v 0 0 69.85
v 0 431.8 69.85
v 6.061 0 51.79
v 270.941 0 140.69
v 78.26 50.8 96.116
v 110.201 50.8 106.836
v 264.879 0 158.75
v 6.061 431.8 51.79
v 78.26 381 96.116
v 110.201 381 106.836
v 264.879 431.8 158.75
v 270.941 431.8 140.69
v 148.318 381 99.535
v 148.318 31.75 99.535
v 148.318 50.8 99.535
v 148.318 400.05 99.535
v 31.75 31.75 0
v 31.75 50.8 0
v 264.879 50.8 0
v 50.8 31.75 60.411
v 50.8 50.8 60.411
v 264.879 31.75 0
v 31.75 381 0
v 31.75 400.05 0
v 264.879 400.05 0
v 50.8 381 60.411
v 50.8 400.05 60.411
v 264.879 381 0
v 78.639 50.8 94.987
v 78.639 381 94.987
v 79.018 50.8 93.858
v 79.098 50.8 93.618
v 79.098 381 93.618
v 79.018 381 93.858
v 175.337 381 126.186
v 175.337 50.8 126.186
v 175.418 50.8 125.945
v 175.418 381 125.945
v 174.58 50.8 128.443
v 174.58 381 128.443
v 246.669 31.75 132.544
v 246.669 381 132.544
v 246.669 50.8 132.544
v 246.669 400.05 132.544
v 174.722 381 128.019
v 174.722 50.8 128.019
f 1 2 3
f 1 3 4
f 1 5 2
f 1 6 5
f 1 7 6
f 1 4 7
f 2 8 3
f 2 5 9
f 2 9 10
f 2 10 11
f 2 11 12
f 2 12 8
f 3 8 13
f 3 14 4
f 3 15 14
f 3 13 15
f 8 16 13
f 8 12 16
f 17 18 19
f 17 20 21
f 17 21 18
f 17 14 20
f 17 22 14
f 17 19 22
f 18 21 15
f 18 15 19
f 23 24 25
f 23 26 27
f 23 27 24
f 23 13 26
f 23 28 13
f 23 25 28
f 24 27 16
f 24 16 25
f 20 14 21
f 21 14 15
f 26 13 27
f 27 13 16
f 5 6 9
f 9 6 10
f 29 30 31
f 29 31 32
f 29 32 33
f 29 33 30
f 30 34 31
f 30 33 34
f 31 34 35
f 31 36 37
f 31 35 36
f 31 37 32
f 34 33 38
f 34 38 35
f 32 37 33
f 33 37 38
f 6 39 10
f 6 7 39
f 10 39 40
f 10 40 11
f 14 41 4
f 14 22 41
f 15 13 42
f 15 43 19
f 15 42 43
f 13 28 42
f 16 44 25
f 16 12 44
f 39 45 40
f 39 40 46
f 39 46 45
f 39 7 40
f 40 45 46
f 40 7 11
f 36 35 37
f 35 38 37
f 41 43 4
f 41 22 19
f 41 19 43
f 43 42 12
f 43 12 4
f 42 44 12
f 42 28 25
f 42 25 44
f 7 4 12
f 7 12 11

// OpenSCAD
// =============================================================
//  Desk footrest -- solid ramp on splayed sides
//
//  A brace, not a platform.  The chair and the desk both adjust, so height is
//  already solved; the job is to give the feet something to push forward
//  against, so the legs stop extending and shoving the hips toward the front
//  of the seat.  The slope does that -- about a third of the push comes back
//  horizontally, into the chair.
//
//  Solid top rather than slats: slats read as pallet, and a solid top can be
//  sized to come off ONE board with no glue-up, which matters because there is
//  no clamp in the shop that spans it.
//
//  Everything is in inches; scale(UNIT) at the bottom emits millimetres.
//
//      openscad footrest.scad
//      openscad -D 'mode="exploded"' footrest.scad
// =============================================================
UNIT = 25.4;

mode = "assembled";   // assembled | exploded | side | parts | none

// ---------------- stock
T = 0.75;

// ---------------- the ramp
// 20 degrees is about the ceiling before the ankle starts to complain, so this
// sits just under it.  D_TOP is chosen so the top comes out of a 1x12.
D_TOP   = 11.00;      // top board, front to back ALONG the ramp
W_TOP   = 17.00;      // top board, side to side
H_FRONT =  2.75;      // top SURFACE height at the near edge
H_BACK  =  6.25;      // at the far edge

// ---------------- sides
INSET = 1.25;         // how far each side is set in from the end of the top
FRONT_SET = 1.25;     // and set back from the front edge, so the top overhangs
SPLAY = 0.75;         // how much wider the sides are at the floor than up top

// ---------------- felt strip
// Where the feet actually land.  Three jobs at once: stops a smooth ramp being
// slippery in socks, is warmer underfoot than bare wood, and puts a line of
// colour into an object that is otherwise one flat brown plane.
FELT_W    = 13.00;
FELT_D    =  4.00;    // along the ramp
FELT_FROM =  3.25;    // from the front edge, along the ramp
FELT_REC  =  0.09375; // 3/32 recess, so the felt sits flush and not proud

// ---------------- derived
RISE  = H_BACK - H_FRONT;
ANG   = asin(RISE / D_TOP);      // ramp angle -- rise over the ramp LENGTH
D     = D_TOP * cos(ANG);        // horizontal footprint
UNDER = T / cos(ANG);            // top's thickness, measured vertically

EPS = 0.01;

WALNUT  = "#5b3a24";
WALNUT2 = "#66422c";
FELT    = "#2b3a55";

// =============================================================
//  parts
// =============================================================

// Put children in the ramp frame: origin at the top's front edge, x running up
// the ramp, z normal to it (0 = top surface, negative = into the board).
module in_ramp() {
    translate([0, 0, H_FRONT]) rotate([0, -ANG, 0]) children();
}

module felt_solid(extra = 0) {
    in_ramp()
        translate([FELT_FROM, (W_TOP - FELT_W)/2, -FELT_REC - extra])
            cube([FELT_D, FELT_W, FELT_REC + extra + EPS]);
}

module top_board() {
    difference() {
        in_ramp() translate([0, 0, -T]) cube([D_TOP, W_TOP, T]);
        felt_solid(EPS);
    }
}

module felt() {
    in_ramp()
        translate([FELT_FROM, (W_TOP - FELT_W)/2, -FELT_REC])
            cube([FELT_D, FELT_W, FELT_REC]);
}

// Side profile, in x (front to back) and z (up).  A splayed trapezoid: wider
// at the floor than where it meets the top, so the piece stands on a base
// visibly broader than its waist.  Straight lines only, no boolean -- nothing
// here can go non-manifold.
module side_profile() {
    z_front = H_FRONT - UNDER;
    z_back  = H_BACK  - UNDER;
    zf = z_front + FRONT_SET * (z_back - z_front) / D;   // ramp height at the setback
    polygon([[FRONT_SET, 0],
             [D, 0],
             [D - SPLAY,           z_back],
             [FRONT_SET + SPLAY,   zf]]);
}

// j = 0 near side, 1 far side
module side(j) {
    y = (j == 0) ? INSET : W_TOP - INSET - T;
    translate([0, y + T, 0])
        rotate([90, 0, 0])
            linear_extrude(T)
                side_profile();
}

// =============================================================
//  assembly
// =============================================================
module footrest(explode = 0) {
    translate([0, 0, explode * 2.4]) color(WALNUT) top_board();
    translate([0, 0, explode * 2.4]) color(FELT)   felt();
    for (j = [0, 1])
        translate([0, (j == 0 ? -explode : explode), 0])
            color(WALNUT2) side(j);
}

scale(UNIT) {
    if (mode == "assembled") {
        footrest(0);
    } else if (mode == "exploded") {
        footrest(1.6);
    } else if (mode == "side") {
        color(WALNUT2) side(0);
    } else if (mode == "parts") {
        // every unique part laid flat, for checking the cut list
        color(WALNUT) cube([D_TOP, W_TOP, T]);
        for (j = [0, 1])
            translate([0, W_TOP + 1.5 + j*(H_BACK + 1.5), 0])
                rotate([90, 0, 0]) translate([0, 0, -T])
                    linear_extrude(T) side_profile();
    }
}

echo(str("top board            = ", W_TOP, " x ", D_TOP, " x ", T,
         "   (one board, no glue-up)"));
echo(str("ramp angle           = ", ANG, " deg"));
echo(str("footprint depth      = ", D));
echo(str("height front -> back = ", H_FRONT, " -> ", H_BACK));
echo(str("side, floor -> top   = ", D, " -> ", D - 2*SPLAY));
echo(str("side height, f -> b  = ",
         H_FRONT - UNDER + FRONT_SET*(H_BACK-H_FRONT)/D, " -> ", H_BACK - UNDER));
echo(str("sides set in         = ", INSET, " each end; top overhangs"));
echo(str("felt strip           = ", FELT_W, " x ", FELT_D,
         ", recessed ", FELT_REC));
